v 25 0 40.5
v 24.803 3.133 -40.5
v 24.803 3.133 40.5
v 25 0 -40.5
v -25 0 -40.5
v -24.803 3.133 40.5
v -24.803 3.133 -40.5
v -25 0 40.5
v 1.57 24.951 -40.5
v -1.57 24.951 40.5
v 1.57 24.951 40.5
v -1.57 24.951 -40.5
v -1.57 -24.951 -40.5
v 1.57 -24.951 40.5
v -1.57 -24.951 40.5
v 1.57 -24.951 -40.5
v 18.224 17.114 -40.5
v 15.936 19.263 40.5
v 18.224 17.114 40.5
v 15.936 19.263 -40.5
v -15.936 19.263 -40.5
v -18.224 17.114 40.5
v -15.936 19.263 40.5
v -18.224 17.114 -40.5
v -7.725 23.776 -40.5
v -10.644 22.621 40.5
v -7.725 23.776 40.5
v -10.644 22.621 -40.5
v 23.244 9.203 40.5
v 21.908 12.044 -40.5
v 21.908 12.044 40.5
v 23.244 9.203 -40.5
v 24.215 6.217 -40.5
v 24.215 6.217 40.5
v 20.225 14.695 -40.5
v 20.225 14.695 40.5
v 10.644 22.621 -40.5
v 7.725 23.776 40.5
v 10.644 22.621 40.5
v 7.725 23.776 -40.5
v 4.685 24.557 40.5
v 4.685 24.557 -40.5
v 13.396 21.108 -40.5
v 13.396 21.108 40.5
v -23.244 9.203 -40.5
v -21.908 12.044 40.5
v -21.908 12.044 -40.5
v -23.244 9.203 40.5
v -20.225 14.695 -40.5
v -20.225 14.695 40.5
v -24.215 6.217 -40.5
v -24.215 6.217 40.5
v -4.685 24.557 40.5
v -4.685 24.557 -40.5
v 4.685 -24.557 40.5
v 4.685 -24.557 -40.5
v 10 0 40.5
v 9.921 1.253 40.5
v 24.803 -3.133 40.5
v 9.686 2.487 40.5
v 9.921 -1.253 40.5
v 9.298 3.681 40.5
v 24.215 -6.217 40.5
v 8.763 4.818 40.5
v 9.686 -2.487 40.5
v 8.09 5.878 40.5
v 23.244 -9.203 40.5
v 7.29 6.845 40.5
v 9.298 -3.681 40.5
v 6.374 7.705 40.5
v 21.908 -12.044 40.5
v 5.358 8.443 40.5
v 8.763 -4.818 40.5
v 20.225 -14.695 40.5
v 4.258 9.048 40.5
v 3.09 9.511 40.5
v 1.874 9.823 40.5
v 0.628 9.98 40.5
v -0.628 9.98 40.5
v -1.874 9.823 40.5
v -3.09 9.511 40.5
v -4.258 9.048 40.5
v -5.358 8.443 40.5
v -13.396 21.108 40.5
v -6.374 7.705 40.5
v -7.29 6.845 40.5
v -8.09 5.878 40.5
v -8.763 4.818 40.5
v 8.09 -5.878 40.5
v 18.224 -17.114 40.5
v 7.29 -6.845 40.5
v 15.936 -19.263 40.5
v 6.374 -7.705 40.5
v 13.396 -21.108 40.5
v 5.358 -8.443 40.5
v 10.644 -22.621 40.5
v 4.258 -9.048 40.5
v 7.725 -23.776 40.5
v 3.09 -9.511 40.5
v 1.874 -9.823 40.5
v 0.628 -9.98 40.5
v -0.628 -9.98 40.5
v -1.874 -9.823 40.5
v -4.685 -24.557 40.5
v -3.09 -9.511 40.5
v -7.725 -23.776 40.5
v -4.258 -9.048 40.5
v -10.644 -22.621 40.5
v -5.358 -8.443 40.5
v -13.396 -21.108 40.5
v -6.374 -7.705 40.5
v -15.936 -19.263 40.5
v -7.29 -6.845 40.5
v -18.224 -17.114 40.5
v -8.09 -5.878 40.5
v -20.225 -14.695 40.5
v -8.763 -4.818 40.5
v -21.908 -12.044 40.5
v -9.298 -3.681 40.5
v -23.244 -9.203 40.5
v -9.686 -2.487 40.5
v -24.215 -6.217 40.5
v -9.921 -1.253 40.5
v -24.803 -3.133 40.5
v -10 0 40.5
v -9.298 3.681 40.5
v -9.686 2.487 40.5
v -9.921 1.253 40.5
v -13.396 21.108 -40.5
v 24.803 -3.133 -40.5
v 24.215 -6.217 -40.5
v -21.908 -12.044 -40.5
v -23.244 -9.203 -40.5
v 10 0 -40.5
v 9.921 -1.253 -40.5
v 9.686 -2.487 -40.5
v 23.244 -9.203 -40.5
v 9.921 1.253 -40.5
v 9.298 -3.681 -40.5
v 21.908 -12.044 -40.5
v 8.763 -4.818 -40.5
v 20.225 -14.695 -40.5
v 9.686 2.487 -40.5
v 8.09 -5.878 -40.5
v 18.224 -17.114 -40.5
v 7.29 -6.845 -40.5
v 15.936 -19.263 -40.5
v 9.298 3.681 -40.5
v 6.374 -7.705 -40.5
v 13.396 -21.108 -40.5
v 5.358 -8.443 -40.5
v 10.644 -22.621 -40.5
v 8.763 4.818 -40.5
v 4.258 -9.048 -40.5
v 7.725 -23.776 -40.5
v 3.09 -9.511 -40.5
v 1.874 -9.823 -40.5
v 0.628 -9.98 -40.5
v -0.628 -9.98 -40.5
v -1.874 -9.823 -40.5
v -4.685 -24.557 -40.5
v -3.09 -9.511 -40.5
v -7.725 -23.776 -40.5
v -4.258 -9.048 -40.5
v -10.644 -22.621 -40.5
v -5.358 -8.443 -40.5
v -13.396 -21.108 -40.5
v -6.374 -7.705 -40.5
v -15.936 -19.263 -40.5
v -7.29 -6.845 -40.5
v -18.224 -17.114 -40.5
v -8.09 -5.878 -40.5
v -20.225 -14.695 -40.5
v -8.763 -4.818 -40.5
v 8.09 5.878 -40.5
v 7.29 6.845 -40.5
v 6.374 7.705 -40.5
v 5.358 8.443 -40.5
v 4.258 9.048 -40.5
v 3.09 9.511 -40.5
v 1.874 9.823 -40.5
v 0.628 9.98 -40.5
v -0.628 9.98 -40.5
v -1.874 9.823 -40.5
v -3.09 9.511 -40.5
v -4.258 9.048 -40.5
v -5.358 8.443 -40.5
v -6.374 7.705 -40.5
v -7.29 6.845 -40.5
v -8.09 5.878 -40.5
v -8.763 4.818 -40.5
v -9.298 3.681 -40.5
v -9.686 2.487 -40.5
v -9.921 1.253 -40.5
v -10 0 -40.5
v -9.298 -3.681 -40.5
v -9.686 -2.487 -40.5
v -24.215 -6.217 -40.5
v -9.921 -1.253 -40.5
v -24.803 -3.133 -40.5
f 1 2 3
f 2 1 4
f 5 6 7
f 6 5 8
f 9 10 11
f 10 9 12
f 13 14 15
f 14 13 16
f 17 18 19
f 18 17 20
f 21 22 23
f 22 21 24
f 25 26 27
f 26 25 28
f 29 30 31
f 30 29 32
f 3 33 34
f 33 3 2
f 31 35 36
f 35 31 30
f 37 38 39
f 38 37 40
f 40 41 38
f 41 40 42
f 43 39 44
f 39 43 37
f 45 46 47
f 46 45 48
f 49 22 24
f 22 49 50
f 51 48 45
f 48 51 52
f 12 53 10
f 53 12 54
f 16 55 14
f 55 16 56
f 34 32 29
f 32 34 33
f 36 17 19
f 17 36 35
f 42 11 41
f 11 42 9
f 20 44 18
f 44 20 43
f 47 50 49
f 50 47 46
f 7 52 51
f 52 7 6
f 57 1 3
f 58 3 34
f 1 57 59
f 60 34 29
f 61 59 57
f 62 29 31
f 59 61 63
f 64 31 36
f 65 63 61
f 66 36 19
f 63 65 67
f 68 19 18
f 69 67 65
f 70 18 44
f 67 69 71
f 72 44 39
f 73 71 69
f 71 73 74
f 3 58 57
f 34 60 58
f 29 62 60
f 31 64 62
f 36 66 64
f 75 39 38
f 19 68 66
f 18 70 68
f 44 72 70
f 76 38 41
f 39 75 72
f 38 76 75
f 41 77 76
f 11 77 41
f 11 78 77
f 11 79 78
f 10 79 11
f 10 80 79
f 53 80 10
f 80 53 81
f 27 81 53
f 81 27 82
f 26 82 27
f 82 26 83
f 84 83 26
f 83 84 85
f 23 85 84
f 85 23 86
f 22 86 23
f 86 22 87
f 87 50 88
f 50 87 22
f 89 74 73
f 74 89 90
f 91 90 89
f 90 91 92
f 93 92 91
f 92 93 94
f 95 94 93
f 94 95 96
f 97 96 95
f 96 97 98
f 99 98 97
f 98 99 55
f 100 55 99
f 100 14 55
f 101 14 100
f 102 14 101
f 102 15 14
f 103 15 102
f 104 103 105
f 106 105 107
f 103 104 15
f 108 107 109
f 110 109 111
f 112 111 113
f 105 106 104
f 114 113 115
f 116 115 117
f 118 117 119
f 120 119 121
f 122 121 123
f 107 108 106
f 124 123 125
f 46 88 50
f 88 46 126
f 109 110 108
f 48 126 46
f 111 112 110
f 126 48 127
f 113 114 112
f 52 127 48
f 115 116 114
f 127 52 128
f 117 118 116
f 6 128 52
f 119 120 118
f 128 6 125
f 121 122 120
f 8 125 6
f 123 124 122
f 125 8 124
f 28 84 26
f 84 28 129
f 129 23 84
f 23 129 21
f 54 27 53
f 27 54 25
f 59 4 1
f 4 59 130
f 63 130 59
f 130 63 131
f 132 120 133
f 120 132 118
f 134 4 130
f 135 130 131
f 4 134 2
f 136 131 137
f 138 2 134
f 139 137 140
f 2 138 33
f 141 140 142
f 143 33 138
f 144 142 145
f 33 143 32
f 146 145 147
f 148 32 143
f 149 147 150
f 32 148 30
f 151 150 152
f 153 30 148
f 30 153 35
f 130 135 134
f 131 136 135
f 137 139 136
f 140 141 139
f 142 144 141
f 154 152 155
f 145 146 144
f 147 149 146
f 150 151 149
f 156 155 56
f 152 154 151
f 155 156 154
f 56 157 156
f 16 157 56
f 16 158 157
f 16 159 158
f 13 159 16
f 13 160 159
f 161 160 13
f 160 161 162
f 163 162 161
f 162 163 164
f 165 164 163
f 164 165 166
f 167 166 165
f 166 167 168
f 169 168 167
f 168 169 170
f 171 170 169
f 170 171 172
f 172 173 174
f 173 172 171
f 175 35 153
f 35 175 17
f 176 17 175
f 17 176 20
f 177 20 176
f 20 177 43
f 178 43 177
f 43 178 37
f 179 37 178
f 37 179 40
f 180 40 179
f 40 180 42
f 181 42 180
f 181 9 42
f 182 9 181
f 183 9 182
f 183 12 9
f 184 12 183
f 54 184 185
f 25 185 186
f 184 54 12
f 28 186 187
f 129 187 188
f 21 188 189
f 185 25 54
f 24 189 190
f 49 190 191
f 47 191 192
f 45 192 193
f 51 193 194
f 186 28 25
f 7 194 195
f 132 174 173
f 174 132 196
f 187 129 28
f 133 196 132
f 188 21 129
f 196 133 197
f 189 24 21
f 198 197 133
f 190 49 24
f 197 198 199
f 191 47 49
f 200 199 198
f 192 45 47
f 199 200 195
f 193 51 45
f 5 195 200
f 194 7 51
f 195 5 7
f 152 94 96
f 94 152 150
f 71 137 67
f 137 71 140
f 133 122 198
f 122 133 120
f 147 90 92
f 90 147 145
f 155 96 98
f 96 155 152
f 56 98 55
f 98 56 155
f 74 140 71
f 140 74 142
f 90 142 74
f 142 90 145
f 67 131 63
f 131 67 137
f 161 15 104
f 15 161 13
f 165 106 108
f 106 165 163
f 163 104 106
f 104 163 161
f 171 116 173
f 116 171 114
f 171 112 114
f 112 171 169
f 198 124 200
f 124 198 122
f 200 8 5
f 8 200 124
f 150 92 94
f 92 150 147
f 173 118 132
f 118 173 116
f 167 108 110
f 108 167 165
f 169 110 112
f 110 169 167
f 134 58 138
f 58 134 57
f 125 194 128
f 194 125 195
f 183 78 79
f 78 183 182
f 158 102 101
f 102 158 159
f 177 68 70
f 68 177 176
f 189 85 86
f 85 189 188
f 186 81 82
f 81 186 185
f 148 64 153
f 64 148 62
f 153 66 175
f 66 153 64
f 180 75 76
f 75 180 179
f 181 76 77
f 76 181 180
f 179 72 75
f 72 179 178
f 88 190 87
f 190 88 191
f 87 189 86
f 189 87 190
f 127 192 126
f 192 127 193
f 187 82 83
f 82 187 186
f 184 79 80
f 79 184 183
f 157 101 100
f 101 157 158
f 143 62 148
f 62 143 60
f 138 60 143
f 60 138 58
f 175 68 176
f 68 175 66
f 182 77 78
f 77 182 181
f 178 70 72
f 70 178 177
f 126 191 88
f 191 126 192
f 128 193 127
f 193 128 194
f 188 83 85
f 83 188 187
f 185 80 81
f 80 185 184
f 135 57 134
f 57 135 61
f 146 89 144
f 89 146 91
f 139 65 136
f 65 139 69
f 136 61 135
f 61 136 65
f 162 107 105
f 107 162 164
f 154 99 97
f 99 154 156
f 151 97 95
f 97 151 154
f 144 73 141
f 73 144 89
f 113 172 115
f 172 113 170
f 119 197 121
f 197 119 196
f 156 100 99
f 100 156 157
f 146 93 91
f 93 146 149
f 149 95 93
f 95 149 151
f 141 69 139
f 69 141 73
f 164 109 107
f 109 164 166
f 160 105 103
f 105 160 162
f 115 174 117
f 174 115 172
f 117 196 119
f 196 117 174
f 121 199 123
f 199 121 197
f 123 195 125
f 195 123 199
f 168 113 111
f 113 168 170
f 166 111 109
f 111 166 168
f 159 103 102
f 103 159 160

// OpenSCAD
$fn = 50;


difference() {
	union() {
		translate(v = [0, 0, -40.5000000000]) {
			cylinder(h = 81, r = 25.0000000000);
		}
	}
	union() {
		translate(v = [0, 0, -100.0000000000]) {
			cylinder(h = 200, r = 10);
		}
	}
}
